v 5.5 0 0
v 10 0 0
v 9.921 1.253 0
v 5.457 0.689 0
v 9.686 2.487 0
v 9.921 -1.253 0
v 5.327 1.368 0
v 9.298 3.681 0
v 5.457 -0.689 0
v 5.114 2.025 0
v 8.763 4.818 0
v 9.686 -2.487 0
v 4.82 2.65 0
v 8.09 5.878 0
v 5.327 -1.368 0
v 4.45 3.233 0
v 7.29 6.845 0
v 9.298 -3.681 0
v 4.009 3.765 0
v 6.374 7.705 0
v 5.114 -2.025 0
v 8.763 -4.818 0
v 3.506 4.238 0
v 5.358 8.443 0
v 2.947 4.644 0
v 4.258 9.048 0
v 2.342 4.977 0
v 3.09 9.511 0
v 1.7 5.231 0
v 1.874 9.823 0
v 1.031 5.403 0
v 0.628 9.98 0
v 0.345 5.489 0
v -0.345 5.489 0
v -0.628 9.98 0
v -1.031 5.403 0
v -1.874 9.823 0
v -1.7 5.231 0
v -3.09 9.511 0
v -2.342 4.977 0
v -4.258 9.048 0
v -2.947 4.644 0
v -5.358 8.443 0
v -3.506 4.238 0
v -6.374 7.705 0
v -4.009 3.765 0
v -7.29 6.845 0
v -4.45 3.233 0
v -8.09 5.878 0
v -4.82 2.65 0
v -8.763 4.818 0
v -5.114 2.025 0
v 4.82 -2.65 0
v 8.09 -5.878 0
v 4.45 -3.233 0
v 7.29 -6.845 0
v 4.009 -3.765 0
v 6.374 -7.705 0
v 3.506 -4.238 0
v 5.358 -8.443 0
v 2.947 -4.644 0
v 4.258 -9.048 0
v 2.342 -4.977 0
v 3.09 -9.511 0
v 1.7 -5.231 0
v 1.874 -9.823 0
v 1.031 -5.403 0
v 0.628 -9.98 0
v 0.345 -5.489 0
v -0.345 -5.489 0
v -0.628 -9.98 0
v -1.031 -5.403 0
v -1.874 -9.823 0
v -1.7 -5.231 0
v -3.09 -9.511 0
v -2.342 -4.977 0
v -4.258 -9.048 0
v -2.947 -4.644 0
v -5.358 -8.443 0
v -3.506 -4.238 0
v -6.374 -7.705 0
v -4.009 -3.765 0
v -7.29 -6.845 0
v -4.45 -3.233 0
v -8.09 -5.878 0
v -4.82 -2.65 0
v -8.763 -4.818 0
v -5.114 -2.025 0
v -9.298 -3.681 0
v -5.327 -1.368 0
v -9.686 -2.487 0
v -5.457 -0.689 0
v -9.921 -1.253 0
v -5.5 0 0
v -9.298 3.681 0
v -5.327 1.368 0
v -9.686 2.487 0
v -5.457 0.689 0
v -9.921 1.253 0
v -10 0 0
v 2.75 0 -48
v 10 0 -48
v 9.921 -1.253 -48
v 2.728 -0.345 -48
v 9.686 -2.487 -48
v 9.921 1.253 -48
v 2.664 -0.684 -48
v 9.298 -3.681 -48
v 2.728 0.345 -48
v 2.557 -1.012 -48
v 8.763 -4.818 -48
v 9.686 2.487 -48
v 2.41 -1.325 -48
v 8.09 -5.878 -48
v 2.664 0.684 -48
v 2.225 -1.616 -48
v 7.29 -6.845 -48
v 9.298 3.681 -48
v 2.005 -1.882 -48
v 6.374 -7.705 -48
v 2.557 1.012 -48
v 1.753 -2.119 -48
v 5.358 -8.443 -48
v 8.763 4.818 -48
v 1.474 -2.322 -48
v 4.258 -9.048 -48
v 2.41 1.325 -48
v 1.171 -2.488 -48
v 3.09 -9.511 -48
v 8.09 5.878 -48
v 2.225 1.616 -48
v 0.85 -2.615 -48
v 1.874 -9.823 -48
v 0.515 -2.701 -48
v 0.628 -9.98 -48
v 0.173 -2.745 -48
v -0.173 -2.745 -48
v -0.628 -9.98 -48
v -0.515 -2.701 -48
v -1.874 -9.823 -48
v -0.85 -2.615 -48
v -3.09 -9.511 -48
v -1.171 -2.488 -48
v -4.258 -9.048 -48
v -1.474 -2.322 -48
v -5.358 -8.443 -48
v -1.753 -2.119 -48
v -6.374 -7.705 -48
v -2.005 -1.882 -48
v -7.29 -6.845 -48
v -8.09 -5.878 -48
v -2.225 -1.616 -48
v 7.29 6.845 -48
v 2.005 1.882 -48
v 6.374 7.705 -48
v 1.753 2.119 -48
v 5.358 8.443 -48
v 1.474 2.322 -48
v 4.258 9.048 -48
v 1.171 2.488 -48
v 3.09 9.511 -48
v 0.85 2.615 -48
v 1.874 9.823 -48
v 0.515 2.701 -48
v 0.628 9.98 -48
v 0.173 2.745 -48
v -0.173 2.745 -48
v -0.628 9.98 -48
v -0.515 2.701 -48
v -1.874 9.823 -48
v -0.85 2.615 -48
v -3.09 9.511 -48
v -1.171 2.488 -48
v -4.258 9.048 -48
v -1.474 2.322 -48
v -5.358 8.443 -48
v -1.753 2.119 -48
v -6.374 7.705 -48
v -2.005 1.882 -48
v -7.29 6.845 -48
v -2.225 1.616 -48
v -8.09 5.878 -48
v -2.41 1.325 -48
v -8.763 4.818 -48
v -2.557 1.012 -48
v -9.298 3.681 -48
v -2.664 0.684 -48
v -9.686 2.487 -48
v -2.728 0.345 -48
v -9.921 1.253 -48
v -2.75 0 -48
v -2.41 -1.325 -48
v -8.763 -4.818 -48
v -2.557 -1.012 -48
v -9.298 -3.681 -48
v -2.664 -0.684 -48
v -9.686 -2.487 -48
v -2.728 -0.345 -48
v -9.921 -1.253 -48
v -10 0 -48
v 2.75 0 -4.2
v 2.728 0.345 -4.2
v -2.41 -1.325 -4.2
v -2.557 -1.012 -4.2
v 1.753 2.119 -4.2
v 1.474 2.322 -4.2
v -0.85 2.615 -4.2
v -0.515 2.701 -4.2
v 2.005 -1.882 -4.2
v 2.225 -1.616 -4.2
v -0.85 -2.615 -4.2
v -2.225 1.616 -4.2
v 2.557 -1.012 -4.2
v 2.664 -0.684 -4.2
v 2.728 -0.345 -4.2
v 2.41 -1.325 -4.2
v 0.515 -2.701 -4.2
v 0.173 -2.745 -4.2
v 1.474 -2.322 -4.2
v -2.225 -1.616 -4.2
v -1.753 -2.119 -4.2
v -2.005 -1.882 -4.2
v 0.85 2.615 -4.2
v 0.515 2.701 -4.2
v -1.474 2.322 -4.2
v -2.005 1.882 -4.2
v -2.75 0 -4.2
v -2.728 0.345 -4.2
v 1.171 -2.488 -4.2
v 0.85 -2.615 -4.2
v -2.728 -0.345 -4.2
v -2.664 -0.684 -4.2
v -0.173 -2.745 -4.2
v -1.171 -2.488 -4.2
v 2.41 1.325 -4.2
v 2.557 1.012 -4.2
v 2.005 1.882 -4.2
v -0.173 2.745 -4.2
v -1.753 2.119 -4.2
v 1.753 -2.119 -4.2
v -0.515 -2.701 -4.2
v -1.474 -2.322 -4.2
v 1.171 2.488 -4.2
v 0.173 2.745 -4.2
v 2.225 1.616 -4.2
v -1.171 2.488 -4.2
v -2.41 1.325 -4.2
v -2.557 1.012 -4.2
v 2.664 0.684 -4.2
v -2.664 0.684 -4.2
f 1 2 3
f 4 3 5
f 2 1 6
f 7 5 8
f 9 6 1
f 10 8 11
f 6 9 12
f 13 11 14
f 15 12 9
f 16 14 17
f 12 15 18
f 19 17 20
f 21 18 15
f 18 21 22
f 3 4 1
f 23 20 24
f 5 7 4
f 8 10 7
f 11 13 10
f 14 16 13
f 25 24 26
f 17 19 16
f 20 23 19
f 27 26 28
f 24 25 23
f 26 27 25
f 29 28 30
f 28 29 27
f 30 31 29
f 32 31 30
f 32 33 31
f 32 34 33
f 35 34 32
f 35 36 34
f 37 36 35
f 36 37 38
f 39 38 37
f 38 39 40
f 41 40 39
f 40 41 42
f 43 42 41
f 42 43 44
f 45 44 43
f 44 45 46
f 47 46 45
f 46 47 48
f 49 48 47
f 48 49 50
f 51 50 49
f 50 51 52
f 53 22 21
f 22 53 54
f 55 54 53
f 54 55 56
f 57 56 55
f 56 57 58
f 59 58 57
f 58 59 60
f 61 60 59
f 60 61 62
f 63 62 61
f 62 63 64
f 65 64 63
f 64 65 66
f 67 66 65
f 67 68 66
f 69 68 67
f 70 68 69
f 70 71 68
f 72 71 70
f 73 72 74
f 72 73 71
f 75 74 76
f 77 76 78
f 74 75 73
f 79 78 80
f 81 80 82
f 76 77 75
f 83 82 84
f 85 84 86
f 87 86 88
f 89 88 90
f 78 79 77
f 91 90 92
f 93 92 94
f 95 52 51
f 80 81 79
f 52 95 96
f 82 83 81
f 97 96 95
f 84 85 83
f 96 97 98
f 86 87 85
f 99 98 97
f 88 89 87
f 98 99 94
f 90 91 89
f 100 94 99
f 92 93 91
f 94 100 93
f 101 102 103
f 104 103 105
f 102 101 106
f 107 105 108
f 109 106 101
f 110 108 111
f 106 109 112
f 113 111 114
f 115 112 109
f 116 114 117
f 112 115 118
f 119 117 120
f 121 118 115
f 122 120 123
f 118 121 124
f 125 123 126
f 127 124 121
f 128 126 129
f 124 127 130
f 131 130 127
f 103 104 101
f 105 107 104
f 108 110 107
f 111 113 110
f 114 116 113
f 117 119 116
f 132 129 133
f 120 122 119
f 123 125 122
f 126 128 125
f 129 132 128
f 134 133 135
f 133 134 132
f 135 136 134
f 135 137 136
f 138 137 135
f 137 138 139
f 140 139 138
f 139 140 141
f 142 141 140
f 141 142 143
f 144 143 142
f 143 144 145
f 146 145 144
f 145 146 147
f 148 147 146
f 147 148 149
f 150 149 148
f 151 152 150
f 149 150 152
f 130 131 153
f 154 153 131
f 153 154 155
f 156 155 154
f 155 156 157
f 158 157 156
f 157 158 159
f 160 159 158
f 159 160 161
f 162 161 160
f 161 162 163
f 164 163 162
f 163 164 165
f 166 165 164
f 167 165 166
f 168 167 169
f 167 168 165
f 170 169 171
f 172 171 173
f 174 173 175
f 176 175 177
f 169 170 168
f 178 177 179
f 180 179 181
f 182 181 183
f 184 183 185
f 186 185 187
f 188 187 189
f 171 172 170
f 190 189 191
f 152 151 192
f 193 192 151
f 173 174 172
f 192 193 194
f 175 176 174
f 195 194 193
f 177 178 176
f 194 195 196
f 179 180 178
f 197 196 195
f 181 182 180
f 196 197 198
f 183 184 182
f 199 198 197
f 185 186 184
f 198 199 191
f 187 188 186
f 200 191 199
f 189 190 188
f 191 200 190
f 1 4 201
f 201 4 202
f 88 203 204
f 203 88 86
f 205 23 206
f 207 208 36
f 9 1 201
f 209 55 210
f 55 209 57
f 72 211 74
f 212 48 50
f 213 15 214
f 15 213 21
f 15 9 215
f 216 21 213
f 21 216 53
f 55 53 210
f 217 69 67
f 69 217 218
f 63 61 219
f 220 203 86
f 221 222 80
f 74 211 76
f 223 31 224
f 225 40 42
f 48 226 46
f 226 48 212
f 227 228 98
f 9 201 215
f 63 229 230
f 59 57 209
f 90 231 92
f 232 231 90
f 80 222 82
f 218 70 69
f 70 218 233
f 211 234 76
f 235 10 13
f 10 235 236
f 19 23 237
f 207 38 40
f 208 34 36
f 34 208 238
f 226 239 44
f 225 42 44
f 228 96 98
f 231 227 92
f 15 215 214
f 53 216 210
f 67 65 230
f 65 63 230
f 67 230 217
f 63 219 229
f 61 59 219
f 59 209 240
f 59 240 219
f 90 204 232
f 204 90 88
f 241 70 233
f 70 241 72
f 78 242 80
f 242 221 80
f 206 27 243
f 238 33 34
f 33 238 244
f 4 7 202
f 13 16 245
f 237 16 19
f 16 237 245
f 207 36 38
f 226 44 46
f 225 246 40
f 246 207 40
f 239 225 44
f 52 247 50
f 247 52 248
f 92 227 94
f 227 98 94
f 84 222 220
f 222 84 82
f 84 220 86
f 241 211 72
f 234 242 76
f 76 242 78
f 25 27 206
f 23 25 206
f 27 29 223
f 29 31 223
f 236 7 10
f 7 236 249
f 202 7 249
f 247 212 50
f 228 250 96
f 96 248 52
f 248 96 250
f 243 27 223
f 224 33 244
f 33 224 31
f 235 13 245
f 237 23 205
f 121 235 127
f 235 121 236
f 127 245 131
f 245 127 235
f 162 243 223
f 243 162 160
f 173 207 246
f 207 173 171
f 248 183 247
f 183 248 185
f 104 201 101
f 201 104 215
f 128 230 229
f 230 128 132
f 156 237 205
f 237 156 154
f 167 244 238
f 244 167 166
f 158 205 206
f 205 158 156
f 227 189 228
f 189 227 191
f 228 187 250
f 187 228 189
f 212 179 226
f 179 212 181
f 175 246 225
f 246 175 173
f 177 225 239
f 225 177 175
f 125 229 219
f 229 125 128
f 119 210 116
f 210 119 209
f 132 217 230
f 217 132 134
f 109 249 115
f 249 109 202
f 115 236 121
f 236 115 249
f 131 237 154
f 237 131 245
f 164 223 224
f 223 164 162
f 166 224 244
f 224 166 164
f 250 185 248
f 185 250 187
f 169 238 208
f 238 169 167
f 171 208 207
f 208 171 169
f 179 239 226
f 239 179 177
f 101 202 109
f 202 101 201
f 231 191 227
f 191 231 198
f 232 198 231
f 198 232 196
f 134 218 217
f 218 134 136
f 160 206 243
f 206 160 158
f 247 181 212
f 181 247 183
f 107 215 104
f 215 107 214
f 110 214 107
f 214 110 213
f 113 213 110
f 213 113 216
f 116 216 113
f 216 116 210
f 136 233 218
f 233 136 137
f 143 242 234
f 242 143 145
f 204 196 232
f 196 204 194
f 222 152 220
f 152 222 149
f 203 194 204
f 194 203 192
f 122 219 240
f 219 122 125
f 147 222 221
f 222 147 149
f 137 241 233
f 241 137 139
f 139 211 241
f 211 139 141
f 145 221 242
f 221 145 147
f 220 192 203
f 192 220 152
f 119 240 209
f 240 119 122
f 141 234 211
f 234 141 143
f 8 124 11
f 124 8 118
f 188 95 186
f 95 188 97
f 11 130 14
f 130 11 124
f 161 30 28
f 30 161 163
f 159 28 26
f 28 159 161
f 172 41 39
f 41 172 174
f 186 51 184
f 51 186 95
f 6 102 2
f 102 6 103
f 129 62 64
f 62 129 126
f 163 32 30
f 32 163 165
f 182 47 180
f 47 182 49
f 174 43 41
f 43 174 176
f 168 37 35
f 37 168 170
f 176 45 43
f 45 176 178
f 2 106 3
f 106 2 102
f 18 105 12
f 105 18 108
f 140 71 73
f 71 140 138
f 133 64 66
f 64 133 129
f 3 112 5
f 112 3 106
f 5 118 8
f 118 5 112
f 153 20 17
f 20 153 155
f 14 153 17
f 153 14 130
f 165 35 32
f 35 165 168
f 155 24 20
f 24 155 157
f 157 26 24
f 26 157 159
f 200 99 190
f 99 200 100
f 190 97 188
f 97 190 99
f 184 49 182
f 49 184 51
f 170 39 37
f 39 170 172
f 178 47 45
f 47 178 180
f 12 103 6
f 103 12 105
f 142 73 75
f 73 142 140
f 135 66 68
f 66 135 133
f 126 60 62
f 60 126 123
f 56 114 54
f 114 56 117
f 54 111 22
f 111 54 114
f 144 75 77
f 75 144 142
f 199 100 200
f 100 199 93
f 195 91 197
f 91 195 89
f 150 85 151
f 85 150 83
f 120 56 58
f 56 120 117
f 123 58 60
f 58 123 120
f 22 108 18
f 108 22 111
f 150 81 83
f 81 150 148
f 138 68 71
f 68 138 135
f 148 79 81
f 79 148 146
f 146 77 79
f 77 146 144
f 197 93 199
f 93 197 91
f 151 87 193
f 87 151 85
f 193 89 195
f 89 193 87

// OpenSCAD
$fn = 50;


difference() {
	union() {
		translate(v = [0, 0, -48.0000000000]) {
			cylinder(h = 48, r = 10.0000000000);
		}
		cylinder(h = 0, r = 20.0000000000);
	}
	union() {
		translate(v = [0, 0, 0]) {
			rotate(a = [0, 0, 0]) {
				difference() {
					union() {
						#translate(v = [0, 0, -48.0000000000]) {
							cylinder(h = 48, r = 2.2500000000);
						}
						#translate(v = [0, 0, -4.2000000000]) {
							cylinder(h = 4.2000000000, r = 10.0000000000, r1 = 2.7500000000, r2 = 5.5000000000);
						}
						#translate(v = [0, 0, -48.0000000000]) {
							cylinder(h = 48, r = 2.7500000000);
						}
						#translate(v = [0, 0, -48.0000000000]) {
							cylinder(h = 48, r = 2.2500000000);
						}
					}
					union();
				}
			}
		}
	}
}
